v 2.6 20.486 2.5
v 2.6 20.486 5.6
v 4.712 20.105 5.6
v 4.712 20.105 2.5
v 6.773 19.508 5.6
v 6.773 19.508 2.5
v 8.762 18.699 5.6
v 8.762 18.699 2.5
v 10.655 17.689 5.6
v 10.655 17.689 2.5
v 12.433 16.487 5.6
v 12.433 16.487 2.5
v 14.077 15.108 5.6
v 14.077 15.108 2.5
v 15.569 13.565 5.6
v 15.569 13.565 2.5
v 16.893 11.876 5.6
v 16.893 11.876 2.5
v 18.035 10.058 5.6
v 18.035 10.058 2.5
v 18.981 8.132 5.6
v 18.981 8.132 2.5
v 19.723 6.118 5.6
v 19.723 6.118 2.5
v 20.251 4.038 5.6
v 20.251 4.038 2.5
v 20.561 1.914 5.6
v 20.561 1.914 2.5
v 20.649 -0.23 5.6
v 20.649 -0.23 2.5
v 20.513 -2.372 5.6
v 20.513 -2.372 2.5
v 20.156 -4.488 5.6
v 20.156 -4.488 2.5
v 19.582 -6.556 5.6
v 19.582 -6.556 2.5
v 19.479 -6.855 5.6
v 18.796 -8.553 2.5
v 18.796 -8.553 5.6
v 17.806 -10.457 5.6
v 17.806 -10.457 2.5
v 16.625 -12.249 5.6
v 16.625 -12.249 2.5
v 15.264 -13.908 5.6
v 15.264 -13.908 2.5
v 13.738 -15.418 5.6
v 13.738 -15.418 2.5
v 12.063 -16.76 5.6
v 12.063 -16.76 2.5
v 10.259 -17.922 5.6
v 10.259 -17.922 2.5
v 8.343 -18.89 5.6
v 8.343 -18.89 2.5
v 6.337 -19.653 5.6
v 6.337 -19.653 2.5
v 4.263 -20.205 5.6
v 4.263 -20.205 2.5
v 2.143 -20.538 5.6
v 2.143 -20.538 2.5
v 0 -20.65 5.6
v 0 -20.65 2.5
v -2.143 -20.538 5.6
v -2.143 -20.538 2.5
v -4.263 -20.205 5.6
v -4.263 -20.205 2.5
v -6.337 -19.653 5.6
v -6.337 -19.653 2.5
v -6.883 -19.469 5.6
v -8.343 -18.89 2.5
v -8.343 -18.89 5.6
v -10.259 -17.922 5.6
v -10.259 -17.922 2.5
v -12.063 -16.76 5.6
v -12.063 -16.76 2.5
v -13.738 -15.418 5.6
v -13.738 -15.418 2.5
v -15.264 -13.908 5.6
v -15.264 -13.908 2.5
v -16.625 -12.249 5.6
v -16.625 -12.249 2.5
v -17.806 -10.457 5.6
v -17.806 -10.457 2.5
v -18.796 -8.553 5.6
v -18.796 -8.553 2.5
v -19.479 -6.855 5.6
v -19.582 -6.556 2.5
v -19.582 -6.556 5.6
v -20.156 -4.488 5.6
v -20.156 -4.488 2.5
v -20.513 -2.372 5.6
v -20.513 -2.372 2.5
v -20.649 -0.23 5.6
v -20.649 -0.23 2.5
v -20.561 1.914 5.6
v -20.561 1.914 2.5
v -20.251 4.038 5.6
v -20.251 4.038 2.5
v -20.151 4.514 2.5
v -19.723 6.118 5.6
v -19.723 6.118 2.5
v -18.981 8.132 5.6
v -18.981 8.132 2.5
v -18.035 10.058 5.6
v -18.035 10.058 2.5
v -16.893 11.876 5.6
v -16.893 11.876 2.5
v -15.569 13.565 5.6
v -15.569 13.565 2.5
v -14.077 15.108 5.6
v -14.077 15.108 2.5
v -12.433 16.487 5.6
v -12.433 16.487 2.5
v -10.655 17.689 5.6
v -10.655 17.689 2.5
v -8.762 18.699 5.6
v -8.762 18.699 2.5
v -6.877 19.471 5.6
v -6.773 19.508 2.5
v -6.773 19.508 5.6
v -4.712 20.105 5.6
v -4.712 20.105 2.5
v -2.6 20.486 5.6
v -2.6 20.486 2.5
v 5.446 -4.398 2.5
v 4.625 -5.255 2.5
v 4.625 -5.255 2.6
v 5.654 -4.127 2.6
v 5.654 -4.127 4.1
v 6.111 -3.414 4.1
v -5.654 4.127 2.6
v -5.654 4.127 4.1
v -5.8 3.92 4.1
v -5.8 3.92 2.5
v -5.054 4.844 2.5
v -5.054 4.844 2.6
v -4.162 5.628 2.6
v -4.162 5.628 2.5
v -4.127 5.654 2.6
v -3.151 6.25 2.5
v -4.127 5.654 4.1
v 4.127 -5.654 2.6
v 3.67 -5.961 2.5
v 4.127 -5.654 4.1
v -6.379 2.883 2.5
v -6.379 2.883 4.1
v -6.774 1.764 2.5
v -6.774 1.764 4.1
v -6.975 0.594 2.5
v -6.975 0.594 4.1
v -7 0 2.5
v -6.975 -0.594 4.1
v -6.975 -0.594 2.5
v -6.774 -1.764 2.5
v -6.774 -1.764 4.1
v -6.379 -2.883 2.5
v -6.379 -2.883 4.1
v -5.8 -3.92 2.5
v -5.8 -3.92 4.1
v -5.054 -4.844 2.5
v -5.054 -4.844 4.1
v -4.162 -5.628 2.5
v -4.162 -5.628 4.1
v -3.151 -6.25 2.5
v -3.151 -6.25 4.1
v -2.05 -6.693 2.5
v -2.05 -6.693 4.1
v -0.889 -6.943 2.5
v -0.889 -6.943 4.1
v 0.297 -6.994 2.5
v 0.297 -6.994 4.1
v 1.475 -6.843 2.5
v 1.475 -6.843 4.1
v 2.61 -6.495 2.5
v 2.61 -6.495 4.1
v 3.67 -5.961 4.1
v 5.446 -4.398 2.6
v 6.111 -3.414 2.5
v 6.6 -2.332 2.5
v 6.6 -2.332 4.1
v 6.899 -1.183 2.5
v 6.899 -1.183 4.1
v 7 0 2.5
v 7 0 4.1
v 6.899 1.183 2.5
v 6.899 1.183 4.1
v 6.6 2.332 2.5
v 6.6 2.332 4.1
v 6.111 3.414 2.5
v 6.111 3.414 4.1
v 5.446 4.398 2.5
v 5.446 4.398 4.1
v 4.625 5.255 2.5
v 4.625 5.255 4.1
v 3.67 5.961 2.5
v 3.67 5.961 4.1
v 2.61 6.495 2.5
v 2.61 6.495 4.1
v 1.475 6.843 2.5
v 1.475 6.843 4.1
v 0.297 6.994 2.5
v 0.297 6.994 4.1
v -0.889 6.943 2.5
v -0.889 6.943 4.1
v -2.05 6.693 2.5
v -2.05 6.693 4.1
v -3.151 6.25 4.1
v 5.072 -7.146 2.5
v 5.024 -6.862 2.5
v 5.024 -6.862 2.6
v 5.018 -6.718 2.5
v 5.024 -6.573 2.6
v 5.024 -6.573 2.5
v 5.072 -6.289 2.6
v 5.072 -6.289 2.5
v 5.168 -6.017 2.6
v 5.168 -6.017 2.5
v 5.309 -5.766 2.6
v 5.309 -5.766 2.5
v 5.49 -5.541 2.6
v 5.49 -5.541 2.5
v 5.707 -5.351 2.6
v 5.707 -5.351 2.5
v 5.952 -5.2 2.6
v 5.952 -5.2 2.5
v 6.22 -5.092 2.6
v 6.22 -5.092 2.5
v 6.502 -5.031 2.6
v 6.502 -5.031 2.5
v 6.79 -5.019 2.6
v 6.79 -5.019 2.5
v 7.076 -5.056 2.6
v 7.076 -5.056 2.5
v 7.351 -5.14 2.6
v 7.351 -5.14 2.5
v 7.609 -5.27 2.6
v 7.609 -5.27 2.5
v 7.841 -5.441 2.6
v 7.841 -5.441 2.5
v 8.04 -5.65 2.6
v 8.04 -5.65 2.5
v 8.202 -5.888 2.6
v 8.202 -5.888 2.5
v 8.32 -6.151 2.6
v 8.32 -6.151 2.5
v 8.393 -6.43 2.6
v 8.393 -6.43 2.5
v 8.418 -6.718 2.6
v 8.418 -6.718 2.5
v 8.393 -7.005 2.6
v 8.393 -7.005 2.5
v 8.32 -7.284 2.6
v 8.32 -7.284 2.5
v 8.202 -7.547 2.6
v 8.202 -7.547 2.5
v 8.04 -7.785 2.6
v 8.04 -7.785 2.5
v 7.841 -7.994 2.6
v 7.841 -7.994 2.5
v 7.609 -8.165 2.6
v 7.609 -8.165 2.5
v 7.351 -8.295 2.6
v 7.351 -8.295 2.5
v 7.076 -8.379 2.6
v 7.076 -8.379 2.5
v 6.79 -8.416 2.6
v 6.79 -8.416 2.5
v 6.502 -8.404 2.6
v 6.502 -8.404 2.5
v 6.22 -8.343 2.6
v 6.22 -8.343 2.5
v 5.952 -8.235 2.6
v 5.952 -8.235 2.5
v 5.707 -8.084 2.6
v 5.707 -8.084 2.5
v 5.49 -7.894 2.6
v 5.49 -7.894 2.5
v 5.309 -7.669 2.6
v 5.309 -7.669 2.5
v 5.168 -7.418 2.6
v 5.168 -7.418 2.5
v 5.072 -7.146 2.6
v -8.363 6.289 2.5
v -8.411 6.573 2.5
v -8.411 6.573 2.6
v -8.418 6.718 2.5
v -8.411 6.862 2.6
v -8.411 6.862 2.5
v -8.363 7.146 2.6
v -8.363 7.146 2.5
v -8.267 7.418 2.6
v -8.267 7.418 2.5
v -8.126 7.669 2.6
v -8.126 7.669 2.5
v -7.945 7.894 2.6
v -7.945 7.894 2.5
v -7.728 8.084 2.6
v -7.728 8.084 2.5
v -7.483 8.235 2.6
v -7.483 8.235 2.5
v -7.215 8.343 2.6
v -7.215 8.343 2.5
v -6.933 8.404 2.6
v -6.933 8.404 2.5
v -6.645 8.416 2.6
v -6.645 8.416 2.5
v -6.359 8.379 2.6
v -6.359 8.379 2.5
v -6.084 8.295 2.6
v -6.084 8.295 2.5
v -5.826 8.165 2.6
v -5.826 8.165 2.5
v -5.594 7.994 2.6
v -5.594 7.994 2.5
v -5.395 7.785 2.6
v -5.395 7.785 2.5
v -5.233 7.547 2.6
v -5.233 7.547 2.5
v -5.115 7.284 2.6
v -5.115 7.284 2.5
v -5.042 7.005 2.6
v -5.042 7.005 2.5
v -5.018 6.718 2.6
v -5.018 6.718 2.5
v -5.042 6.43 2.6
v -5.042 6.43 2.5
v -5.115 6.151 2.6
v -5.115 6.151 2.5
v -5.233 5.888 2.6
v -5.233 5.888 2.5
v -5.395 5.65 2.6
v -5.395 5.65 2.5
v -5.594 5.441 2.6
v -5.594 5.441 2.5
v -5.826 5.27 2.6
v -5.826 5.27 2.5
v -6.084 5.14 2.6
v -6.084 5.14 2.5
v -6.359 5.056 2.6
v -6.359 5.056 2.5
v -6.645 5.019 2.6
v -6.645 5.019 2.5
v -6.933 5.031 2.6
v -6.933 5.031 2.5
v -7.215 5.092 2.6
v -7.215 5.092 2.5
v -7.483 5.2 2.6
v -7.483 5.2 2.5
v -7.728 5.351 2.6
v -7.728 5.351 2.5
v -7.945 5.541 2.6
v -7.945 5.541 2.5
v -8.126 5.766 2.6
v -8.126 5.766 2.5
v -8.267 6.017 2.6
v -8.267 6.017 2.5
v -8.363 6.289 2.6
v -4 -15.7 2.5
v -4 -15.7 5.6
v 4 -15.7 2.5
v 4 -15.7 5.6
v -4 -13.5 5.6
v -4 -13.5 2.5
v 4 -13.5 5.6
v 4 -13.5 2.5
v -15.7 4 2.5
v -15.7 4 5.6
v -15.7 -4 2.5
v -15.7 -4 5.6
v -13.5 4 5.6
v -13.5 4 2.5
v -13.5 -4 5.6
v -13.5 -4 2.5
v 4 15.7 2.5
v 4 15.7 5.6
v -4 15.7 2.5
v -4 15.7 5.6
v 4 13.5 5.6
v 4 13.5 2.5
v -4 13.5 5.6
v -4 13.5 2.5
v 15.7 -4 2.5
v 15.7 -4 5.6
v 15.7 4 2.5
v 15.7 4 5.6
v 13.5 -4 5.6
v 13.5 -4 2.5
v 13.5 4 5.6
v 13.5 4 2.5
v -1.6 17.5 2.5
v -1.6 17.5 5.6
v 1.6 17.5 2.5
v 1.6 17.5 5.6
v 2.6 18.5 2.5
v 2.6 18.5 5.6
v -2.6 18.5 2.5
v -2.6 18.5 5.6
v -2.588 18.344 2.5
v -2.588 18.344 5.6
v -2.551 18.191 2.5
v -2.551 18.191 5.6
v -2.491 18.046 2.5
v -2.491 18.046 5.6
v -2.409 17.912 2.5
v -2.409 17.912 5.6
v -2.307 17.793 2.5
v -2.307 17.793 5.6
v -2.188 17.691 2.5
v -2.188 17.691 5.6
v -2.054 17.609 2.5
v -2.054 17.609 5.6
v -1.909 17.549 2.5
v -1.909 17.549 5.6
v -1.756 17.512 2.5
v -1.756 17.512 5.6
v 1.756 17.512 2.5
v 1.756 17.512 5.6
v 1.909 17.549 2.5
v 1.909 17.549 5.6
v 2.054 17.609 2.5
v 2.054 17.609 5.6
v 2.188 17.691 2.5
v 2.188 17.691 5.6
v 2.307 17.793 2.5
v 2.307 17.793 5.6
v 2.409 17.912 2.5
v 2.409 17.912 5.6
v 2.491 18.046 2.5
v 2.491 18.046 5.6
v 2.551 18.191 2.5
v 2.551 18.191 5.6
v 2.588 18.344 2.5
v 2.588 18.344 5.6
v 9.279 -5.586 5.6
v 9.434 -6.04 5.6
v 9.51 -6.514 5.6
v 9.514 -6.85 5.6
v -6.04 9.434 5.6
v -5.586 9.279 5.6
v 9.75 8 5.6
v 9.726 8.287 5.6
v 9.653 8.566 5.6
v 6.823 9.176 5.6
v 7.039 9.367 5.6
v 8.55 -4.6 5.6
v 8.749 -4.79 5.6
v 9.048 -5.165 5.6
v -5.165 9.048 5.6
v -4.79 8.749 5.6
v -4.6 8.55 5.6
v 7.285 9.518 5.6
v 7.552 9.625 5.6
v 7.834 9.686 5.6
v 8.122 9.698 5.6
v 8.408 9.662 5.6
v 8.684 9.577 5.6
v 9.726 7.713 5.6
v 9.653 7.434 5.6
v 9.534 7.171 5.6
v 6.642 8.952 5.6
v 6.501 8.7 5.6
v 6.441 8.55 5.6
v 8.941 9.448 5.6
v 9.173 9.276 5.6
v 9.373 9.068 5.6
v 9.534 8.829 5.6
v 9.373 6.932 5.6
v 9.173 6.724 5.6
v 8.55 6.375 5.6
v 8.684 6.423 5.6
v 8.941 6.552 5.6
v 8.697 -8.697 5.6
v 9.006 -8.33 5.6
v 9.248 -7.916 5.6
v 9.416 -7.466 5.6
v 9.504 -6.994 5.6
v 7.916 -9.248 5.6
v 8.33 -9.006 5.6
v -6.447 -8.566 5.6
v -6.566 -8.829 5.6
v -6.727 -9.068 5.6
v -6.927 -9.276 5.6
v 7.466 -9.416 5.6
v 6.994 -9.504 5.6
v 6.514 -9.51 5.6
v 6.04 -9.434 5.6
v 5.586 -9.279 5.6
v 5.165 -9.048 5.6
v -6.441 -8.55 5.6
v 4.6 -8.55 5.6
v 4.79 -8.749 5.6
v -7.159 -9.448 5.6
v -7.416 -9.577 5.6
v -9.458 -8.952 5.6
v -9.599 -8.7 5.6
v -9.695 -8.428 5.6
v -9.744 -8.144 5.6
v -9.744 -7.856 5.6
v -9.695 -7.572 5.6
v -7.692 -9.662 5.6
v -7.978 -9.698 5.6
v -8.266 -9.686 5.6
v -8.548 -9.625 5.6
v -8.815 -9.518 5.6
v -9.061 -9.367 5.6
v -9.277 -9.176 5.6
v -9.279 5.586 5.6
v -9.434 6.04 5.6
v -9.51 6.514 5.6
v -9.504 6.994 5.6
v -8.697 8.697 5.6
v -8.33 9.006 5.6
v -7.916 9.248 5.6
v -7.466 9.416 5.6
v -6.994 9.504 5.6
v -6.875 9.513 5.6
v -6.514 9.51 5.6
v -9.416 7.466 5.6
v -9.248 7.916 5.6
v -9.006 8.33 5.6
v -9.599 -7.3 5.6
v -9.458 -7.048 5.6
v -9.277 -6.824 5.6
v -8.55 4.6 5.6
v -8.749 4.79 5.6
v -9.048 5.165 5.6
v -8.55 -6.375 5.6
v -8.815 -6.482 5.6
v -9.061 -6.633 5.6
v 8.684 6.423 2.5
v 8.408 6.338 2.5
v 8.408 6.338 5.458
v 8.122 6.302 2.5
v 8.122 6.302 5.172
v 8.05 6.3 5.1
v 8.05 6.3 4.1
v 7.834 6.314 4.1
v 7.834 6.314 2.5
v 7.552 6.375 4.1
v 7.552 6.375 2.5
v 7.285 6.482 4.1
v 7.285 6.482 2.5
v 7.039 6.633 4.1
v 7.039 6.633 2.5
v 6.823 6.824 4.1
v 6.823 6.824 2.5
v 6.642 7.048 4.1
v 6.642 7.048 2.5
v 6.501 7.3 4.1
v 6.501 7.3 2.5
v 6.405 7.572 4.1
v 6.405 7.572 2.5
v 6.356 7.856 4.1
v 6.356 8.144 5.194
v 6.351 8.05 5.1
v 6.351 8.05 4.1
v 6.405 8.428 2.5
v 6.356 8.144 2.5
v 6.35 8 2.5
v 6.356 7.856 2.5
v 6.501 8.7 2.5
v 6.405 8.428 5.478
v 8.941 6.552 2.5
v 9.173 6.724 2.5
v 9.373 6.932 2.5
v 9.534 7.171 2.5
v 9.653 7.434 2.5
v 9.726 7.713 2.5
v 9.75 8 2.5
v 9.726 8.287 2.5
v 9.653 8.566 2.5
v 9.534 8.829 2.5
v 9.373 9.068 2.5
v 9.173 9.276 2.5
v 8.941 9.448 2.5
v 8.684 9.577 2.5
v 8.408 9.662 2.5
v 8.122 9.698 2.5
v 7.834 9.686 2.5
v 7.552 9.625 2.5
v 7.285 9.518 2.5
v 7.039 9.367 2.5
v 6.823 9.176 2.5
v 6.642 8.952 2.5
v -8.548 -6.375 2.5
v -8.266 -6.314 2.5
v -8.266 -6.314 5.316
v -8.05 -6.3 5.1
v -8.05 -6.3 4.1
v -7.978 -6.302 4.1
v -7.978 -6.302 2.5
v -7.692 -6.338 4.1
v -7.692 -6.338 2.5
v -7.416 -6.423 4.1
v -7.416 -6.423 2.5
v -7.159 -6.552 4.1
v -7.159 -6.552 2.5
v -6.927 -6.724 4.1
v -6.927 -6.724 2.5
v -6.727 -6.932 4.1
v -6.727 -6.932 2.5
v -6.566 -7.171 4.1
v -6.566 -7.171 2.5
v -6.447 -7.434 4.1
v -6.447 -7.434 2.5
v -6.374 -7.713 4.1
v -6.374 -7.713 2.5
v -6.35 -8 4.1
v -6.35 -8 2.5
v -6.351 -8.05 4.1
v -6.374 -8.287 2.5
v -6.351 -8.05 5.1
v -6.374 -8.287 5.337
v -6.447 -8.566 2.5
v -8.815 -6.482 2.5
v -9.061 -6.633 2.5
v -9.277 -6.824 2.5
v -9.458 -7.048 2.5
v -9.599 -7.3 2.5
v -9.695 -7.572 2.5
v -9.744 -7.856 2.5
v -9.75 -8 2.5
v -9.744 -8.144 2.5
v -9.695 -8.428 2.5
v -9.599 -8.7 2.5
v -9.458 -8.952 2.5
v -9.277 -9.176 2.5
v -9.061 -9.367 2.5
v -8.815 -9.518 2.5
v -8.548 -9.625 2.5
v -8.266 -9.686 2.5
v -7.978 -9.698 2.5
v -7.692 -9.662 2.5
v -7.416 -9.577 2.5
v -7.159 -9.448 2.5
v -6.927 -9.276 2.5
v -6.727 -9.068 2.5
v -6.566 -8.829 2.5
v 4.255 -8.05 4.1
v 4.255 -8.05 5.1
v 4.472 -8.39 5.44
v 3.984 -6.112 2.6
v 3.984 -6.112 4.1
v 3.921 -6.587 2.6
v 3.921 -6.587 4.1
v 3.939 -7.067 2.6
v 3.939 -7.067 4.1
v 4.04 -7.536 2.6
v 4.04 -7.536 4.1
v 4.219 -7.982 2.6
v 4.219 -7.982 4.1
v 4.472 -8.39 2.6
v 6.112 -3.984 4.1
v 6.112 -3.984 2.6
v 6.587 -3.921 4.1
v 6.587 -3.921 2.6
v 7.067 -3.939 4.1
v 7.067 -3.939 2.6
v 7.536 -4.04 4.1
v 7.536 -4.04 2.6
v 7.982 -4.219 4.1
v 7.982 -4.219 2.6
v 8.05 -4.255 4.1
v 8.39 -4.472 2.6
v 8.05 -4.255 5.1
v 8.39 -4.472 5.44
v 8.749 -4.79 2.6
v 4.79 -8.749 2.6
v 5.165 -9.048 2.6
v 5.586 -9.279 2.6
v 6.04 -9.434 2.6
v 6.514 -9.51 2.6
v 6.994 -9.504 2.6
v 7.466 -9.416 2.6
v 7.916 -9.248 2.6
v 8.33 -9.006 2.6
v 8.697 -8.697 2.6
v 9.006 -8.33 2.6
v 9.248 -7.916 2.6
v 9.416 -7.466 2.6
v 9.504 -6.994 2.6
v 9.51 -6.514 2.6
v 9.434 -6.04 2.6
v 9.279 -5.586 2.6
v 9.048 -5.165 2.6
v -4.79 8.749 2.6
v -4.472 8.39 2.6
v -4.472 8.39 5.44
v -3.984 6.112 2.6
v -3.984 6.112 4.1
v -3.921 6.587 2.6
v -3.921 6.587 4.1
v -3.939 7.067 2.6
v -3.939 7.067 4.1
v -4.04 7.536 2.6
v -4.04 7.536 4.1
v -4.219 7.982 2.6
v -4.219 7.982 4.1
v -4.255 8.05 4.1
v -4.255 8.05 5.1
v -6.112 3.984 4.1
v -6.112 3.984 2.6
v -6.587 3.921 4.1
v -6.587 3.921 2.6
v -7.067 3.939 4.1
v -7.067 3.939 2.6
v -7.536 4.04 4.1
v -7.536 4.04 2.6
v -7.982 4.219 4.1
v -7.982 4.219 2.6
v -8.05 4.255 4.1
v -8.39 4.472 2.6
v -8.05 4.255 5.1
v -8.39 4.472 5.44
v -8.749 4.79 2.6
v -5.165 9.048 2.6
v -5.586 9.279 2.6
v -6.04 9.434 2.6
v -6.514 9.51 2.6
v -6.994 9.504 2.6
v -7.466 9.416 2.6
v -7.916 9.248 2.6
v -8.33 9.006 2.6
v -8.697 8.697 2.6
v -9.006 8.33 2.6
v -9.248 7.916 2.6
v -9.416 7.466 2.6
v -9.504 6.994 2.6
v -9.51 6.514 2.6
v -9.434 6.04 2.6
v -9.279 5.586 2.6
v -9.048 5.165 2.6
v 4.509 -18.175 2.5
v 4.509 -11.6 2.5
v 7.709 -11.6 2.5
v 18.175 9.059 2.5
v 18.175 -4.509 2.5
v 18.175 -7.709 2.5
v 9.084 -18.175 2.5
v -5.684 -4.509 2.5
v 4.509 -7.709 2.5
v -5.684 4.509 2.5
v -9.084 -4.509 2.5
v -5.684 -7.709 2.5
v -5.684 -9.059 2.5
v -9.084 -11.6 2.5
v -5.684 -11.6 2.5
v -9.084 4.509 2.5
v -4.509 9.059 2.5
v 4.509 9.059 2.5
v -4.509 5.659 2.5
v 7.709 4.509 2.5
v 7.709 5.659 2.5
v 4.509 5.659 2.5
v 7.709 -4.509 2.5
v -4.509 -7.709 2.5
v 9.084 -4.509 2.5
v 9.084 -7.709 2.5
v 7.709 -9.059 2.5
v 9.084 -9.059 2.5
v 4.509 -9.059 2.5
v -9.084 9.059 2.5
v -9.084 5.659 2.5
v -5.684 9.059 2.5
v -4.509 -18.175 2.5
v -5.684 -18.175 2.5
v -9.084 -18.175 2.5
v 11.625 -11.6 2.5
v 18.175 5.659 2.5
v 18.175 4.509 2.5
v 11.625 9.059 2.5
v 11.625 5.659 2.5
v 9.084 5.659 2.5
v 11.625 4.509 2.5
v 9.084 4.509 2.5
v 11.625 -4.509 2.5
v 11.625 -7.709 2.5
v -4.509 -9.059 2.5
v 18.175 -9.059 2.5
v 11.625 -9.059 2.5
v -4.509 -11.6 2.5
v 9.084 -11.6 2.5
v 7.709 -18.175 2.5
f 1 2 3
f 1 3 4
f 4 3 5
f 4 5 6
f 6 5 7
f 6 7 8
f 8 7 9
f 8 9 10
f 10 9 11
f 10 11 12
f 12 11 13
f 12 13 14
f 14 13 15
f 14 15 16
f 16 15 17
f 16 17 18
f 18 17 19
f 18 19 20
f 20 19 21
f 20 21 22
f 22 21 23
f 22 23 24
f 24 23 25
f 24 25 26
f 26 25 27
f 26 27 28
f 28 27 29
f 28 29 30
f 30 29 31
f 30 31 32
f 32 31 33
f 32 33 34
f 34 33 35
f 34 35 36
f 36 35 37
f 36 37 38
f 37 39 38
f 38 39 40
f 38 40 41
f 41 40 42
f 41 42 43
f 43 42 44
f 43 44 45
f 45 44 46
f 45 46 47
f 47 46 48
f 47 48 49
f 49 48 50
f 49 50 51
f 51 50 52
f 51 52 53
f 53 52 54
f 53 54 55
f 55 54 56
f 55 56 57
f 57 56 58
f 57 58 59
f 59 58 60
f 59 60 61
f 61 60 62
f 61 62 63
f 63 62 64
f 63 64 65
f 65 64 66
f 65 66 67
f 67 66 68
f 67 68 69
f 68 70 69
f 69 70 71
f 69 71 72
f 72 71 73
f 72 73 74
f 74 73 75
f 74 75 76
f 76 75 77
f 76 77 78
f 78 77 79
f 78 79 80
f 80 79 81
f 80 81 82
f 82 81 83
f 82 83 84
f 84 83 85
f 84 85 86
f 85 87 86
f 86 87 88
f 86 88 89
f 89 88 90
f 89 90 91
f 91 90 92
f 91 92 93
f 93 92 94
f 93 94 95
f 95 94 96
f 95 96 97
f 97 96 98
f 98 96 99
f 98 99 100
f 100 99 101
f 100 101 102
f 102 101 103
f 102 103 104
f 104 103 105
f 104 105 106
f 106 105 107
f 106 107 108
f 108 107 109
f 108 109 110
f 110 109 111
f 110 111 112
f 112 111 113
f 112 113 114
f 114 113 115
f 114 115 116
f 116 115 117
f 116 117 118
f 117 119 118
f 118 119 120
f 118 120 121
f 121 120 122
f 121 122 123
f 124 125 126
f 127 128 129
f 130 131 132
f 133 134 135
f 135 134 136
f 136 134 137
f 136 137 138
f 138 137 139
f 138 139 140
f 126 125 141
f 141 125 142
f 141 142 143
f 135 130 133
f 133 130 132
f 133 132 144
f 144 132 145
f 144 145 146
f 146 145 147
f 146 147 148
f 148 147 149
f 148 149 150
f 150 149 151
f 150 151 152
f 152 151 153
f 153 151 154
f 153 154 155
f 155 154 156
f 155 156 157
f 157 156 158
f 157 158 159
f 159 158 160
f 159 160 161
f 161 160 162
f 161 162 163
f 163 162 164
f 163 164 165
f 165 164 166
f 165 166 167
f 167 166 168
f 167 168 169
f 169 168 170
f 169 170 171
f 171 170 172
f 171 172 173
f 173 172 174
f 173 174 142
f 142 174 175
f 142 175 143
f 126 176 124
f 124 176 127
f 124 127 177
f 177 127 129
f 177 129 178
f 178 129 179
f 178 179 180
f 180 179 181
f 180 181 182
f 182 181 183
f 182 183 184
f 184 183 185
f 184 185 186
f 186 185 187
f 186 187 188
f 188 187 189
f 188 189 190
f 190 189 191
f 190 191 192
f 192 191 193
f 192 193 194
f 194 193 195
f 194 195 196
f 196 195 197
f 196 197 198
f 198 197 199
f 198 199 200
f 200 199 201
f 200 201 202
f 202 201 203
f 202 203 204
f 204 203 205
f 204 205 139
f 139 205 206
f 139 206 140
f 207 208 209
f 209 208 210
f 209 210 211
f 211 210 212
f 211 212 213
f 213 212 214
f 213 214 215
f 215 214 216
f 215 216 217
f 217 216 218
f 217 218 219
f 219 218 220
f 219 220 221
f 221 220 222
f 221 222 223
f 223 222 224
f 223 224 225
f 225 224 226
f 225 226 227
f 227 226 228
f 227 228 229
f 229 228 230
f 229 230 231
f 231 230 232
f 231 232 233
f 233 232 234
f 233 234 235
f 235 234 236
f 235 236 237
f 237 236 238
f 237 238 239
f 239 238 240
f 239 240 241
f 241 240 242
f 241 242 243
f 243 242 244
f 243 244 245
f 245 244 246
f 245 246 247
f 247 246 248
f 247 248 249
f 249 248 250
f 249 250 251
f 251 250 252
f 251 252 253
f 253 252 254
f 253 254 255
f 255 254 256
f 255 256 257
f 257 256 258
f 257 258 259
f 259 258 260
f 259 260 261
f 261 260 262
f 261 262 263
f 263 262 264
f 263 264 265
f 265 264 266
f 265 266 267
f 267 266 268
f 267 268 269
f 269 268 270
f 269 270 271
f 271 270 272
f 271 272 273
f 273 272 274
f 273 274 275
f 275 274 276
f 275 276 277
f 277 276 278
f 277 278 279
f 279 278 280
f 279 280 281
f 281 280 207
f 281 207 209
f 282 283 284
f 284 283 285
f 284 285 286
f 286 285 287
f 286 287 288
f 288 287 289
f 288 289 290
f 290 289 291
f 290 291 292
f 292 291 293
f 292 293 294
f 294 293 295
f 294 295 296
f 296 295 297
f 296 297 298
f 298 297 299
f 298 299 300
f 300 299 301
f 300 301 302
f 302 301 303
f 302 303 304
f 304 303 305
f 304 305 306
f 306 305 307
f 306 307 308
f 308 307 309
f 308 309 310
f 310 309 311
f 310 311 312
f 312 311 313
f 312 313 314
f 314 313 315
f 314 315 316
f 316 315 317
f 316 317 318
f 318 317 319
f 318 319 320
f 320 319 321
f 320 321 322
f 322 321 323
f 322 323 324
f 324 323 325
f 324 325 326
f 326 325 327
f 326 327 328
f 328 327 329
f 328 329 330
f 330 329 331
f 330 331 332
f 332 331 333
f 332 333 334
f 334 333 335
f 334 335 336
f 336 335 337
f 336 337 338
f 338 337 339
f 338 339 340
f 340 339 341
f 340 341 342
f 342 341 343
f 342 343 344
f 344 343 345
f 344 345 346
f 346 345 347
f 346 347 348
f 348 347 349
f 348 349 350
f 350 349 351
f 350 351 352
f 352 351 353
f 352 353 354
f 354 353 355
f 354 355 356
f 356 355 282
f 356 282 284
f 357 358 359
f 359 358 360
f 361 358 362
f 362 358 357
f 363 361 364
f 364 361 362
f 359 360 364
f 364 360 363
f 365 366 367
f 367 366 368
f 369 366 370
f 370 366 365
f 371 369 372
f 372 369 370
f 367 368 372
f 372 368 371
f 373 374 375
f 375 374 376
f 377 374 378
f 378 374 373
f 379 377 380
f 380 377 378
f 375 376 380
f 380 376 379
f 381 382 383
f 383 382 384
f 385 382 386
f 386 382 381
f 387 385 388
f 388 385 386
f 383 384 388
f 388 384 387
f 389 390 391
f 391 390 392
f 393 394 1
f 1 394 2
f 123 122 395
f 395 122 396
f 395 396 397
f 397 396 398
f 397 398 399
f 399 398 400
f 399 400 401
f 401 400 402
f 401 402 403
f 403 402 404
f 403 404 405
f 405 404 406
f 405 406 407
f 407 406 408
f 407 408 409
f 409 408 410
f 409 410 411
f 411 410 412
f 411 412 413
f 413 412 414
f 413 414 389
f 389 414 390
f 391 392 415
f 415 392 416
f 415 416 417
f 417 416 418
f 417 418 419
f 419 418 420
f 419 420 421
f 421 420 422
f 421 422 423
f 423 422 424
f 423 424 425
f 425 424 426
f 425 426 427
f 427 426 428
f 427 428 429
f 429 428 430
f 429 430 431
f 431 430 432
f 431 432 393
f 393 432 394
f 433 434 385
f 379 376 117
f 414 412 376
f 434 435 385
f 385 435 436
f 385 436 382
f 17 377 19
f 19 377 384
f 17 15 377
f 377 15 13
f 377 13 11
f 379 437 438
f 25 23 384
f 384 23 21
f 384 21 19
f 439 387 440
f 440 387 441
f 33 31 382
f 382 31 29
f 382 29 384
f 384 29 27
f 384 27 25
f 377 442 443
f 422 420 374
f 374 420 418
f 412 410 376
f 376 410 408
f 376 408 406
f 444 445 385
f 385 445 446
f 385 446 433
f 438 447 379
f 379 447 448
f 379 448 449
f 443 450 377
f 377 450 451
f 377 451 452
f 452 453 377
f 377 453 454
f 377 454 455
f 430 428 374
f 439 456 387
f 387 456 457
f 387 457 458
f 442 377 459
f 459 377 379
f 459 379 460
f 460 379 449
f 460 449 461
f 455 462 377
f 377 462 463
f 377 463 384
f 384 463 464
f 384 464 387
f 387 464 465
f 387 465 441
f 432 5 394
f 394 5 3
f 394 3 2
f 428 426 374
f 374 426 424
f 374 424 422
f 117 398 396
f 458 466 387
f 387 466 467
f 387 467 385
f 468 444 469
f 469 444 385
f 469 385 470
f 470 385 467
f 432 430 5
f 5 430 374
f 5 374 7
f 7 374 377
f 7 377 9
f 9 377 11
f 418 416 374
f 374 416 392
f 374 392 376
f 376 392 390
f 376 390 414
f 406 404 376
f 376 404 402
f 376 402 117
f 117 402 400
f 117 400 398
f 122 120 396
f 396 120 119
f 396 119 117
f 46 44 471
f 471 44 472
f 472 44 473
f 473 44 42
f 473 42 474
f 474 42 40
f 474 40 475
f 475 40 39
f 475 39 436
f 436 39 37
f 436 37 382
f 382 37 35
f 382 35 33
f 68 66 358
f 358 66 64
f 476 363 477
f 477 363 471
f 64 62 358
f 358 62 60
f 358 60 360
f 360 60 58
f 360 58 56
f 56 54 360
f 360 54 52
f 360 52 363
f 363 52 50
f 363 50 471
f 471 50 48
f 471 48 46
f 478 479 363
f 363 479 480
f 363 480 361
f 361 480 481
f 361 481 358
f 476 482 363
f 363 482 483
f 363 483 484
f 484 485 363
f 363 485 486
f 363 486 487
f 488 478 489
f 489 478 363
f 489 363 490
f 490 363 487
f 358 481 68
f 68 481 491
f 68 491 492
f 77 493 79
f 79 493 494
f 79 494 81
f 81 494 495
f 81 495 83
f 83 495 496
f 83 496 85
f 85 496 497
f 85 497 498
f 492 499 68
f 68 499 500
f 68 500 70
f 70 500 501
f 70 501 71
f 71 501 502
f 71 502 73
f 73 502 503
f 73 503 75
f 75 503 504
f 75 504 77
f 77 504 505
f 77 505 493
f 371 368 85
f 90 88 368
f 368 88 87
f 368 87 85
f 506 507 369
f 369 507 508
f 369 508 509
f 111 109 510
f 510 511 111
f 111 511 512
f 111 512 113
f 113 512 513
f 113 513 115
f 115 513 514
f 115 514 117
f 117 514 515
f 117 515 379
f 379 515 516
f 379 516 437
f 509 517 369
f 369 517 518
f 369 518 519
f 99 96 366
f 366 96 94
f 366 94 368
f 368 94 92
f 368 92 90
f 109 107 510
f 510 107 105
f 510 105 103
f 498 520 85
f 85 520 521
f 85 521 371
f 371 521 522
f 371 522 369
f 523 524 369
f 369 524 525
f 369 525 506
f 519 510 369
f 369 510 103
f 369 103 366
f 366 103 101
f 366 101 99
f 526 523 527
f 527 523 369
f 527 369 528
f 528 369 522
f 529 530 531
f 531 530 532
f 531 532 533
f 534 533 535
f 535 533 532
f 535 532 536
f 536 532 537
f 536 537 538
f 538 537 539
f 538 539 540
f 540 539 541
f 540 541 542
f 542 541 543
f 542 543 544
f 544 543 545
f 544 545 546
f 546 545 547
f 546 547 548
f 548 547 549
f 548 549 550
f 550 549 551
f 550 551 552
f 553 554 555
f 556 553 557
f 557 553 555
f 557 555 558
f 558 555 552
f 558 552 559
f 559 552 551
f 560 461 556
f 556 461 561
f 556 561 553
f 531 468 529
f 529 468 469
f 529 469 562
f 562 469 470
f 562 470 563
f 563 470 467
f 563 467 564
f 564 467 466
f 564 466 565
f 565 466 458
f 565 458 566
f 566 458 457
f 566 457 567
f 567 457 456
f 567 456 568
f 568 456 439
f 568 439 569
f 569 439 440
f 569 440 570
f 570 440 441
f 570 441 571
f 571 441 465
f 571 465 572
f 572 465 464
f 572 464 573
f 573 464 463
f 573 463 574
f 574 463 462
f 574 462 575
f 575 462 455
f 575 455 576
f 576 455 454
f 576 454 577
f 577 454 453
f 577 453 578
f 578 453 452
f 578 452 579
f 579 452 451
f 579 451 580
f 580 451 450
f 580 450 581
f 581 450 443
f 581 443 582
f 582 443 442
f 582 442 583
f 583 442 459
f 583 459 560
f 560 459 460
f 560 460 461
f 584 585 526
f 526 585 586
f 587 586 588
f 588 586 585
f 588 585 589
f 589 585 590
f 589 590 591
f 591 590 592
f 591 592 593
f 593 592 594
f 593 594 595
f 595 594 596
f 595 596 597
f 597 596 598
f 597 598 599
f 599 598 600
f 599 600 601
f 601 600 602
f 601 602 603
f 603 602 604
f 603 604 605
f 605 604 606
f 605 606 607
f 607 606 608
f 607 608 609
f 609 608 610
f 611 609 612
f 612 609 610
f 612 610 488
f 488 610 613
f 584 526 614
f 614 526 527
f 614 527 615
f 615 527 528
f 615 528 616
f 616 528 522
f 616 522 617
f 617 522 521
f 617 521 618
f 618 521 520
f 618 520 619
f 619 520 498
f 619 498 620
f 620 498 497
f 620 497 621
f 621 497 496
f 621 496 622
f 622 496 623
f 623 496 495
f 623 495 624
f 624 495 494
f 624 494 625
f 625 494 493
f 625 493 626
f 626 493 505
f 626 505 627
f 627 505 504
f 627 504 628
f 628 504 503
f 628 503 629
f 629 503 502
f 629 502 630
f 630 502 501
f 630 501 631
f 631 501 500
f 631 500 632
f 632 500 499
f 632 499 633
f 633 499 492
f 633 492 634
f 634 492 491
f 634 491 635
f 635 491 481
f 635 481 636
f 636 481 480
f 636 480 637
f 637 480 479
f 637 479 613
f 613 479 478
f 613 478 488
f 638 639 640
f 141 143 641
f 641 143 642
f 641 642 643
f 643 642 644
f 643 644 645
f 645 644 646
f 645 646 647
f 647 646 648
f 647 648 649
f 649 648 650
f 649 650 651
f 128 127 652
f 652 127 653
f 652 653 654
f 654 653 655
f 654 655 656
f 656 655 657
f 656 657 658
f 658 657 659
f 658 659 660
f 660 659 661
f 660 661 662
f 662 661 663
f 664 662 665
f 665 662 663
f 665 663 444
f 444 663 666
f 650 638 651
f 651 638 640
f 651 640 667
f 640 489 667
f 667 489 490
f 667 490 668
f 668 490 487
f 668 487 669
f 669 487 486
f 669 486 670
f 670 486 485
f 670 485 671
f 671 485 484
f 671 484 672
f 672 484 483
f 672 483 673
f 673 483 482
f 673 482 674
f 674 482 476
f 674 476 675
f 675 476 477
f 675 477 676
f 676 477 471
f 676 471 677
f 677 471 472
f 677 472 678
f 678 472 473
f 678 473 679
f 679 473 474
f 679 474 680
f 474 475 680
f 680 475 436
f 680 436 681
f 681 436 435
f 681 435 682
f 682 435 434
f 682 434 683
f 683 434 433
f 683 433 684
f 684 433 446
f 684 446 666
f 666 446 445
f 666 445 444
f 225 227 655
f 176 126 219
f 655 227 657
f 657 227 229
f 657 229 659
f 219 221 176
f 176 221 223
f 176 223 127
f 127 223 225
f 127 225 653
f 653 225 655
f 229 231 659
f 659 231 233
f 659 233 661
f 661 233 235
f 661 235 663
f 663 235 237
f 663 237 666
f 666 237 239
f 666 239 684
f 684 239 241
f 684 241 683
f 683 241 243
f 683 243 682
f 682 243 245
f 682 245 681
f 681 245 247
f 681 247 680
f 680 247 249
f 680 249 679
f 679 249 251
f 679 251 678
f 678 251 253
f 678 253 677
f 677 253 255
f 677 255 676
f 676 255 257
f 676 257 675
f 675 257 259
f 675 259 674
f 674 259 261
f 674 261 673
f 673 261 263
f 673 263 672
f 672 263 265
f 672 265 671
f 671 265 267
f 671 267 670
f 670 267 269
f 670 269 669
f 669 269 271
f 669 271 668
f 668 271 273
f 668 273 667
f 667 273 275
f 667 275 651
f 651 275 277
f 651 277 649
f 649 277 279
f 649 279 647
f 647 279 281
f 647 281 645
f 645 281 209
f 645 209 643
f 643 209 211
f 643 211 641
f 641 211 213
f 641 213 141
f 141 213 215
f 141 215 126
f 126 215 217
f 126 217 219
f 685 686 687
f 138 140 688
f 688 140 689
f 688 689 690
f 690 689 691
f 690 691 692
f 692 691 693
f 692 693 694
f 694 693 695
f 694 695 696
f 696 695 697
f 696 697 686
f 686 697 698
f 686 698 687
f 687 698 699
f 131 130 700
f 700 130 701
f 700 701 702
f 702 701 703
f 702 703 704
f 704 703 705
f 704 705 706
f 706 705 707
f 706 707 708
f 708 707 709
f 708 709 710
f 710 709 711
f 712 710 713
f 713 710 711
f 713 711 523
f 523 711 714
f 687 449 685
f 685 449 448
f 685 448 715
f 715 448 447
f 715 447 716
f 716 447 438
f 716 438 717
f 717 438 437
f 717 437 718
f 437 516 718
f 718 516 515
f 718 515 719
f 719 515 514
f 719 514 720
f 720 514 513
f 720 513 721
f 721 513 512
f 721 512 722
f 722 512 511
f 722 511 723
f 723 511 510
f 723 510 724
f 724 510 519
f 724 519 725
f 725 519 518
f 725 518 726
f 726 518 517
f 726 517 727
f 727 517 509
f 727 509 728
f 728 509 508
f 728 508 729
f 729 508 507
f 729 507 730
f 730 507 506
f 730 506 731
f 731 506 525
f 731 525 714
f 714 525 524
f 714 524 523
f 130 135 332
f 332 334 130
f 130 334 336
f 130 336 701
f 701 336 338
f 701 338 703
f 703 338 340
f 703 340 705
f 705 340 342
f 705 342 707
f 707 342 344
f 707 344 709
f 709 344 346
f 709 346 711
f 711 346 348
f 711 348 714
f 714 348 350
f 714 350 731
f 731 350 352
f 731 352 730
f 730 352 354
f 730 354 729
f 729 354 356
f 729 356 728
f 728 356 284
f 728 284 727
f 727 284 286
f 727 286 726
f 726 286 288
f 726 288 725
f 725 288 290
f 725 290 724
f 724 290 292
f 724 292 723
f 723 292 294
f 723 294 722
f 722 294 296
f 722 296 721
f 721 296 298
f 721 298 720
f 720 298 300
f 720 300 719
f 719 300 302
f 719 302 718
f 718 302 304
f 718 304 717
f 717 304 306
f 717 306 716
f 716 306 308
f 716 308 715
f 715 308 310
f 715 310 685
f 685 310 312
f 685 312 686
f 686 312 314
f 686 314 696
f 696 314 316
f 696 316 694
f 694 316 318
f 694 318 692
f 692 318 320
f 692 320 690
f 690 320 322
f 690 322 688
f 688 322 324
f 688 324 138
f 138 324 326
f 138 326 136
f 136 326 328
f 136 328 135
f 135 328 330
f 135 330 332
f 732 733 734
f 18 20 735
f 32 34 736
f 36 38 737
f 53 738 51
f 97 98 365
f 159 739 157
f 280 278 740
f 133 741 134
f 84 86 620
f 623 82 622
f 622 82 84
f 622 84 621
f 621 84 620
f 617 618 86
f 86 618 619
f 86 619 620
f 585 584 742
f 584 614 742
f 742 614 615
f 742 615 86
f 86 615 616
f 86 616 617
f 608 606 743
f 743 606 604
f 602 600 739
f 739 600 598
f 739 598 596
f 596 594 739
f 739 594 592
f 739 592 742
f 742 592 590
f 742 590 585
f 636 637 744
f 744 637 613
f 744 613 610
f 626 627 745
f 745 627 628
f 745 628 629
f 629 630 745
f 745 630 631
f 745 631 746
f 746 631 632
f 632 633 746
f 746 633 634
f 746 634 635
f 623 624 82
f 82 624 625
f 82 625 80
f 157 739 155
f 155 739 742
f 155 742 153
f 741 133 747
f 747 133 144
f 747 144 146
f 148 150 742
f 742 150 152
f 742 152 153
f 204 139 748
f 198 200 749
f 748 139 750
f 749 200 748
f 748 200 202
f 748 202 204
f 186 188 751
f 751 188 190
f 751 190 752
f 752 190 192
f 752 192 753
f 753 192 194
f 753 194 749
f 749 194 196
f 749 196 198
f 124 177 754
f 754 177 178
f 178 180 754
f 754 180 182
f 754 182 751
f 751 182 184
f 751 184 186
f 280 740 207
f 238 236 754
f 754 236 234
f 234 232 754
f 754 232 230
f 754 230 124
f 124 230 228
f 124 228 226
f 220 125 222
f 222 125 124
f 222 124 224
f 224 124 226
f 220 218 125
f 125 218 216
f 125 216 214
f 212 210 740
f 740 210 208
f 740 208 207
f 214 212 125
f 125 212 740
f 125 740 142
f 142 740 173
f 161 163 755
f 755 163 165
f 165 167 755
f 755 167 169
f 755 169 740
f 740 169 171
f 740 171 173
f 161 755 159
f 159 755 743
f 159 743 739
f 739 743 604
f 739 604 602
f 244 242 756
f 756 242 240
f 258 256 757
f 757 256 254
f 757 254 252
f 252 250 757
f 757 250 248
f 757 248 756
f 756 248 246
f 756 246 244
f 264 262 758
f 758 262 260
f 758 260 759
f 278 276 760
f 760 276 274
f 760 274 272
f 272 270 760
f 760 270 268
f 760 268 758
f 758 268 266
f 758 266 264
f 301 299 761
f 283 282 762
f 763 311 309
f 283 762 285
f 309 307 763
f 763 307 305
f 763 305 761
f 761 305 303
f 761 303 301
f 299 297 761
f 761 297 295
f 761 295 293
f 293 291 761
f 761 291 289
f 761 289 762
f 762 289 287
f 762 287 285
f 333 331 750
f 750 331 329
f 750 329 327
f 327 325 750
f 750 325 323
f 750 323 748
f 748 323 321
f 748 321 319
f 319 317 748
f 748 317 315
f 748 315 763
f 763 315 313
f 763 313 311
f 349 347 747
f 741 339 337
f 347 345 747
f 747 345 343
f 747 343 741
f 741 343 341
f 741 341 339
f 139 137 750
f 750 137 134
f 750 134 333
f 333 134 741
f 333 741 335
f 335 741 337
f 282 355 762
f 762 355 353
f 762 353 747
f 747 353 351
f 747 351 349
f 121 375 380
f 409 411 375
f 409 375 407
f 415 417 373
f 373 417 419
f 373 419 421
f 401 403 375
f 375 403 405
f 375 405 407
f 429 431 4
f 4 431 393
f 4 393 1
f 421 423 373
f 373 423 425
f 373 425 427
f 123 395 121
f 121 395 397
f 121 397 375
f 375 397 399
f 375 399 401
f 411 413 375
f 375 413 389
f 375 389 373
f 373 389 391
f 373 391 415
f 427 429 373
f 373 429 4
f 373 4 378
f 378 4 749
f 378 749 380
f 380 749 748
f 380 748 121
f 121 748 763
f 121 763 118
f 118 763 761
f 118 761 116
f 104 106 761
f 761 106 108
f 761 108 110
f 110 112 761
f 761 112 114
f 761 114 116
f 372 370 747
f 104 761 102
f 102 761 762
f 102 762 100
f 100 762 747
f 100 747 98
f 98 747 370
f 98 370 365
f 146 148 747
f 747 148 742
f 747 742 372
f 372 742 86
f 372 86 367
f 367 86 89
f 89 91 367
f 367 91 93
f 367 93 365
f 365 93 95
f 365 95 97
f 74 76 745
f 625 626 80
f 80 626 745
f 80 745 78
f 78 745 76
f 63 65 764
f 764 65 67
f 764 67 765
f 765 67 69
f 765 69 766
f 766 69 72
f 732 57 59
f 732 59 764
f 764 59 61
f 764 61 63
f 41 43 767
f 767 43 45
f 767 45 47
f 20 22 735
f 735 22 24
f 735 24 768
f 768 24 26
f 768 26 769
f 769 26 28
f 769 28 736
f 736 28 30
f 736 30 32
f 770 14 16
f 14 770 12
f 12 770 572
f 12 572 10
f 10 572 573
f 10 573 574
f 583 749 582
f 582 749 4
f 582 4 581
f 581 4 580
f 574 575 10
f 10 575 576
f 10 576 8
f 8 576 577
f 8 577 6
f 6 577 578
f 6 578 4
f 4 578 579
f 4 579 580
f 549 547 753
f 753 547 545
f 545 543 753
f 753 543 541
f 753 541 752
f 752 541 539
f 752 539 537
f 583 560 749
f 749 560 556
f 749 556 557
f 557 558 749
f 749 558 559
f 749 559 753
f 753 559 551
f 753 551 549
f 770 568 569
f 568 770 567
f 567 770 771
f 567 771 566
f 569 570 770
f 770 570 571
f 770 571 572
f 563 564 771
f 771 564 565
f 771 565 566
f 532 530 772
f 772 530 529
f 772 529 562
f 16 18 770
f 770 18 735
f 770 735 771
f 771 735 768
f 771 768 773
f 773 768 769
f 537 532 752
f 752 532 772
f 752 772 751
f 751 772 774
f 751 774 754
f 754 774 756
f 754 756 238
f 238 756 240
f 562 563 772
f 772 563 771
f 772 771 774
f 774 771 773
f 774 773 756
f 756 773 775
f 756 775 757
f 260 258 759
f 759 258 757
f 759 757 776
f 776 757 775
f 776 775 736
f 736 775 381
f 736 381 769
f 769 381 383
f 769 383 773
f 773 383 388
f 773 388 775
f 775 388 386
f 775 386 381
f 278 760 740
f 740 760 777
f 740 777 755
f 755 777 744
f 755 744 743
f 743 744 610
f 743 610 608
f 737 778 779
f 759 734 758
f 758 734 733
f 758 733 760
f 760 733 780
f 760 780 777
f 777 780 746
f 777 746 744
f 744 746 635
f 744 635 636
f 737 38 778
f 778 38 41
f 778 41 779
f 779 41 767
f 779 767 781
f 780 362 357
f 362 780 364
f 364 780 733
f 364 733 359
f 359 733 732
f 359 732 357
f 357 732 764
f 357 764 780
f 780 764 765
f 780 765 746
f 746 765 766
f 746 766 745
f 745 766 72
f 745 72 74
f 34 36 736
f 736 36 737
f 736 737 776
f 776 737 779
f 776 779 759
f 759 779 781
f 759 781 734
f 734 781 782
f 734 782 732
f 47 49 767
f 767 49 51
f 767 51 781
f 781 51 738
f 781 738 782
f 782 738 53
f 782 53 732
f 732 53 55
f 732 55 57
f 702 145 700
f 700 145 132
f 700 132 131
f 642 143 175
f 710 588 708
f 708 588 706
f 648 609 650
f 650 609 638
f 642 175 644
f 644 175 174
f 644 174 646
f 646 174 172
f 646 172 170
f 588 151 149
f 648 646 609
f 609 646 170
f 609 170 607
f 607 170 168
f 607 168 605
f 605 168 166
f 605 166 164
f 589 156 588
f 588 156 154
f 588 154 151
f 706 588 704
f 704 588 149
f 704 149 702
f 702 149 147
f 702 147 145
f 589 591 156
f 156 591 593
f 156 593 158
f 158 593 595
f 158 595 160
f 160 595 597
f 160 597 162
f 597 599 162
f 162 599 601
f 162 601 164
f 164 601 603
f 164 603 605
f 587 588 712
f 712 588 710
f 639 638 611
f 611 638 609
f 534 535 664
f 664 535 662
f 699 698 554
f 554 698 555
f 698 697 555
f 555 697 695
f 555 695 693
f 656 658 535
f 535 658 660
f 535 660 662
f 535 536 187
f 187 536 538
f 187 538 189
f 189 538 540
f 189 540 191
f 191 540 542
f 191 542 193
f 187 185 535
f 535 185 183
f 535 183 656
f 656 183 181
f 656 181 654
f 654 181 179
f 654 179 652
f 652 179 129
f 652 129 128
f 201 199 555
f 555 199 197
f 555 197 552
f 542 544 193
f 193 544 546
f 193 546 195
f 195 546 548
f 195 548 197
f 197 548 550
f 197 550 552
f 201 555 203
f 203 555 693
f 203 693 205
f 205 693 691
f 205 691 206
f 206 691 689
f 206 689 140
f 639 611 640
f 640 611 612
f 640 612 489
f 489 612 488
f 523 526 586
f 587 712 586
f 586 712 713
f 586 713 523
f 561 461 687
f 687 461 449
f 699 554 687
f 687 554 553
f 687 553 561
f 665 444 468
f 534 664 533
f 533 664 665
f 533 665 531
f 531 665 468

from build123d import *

# Parameters (mm, degrees)
SKETCH_1_R               = 17.4
EXTRUDE_1_DEPTH          = 5.6
SKETCH_2_R               = 1.7
CUT_EXTRUDE_1_DEPTH      = 26.23648153
SKETCH_3_R               = 7
CUT_EXTRUDE_2_DEPTH      = 26.23648153
SKETCH_4_R               = 2.8
CUT_EXTRUDE_3_DEPTH      = 3
SKETCH_5_R               = 1.7
CUT_EXTRUDE_4_DEPTH      = 26.23648153
CUT_EXTRUDE_5_DEPTH      = 2.5
SKETCH_7_W               = 16.1
SKETCH_7_H               = 16.1
CUT_EXTRUDE_6_DEPTH      = 1.5
CHAMFER_1_SIZE           = 0.5
SKETCH_9_W               = 2.2
SKETCH_9_H               = 8
SKETCH_9_W_2             = 8
SKETCH_9_H_2             = 2.2
CUT_EXTRUDE_7_DEPTH      = 26.281613873
BOSS_EXTRUDE1_DEPTH      = 5.6
BOSS_EXTRUDE1_DEPTH_BACK = 4
SKETCH1_R                = 20.65
SKETCH1_R_2              = 17.4
SKETCH3_R                = 23
SKETCH3_R_2              = 20.65
BOSS_EXTRUDE2_DEPTH      = 2.5
SKETCH4_R                = 18
CUT_EXTRUDE3_DEPTH       = 4
SKETCH5_W                = 1
SKETCH5_H                = 8
CUT_EXTRUDE4_DEPTH       = 10
CUT_EXTRUDE6_DEPTH       = 10
FILLET3_R                = 1
SKETCH9_R                = 23
CUT_EXTRUDE8_DEPTH       = 6.5


with BuildPart() as part:
    # 草图1 → 凸台-拉伸1 (new body)
    with BuildSketch(Plane.XY):
        Circle(SKETCH_1_R)
    extrude(amount=EXTRUDE_1_DEPTH)

    # 草图2 → 切除-拉伸1 (cut, through all)
    with BuildSketch(Plane.XY.offset(5.6)):
        with Locations((-6.717514421, 6.717514421)):
            Circle(SKETCH_2_R)
        with Locations((6.717514421, -6.717514421)):
            Circle(SKETCH_2_R)
    extrude(amount=-CUT_EXTRUDE_1_DEPTH, mode=Mode.SUBTRACT)

    # 草图3 → 切除-拉伸2 (cut, through all)
    with BuildSketch(Plane.XY.offset(5.6)):
        Circle(SKETCH_3_R)
    extrude(amount=-CUT_EXTRUDE_2_DEPTH, mode=Mode.SUBTRACT)

    # 草图4 → 切除-拉伸3 (cut)
    with BuildSketch(Plane.XY.offset(5.6)):
        with Locations((-6.717514421, 6.717514421)):
            Circle(SKETCH_4_R)
        with Locations((6.717514421, -6.717514421)):
            Circle(SKETCH_4_R)
    extrude(amount=-CUT_EXTRUDE_3_DEPTH, mode=Mode.SUBTRACT)

    # 草图5 → 切除-拉伸4 (cut, through all)
    with BuildSketch(Plane.XY.offset(5.6)):
        with Locations((8.05, 8)):
            Circle(SKETCH_5_R)
        with Locations((-8.05, -8)):
            Circle(SKETCH_5_R)
    extrude(amount=-CUT_EXTRUDE_4_DEPTH, mode=Mode.SUBTRACT)

    # 草图6 → 切除-拉伸5 (cut)
    with BuildSketch(Plane(origin=(0, 0, 0), x_dir=(-1, 0, 0), z_dir=(0, 0, -1))):
        Polygon((4.766838493, -8), (6.408419246, -10.84330127), (9.691580754, -10.84330127), (11.333161507, -8), (9.691580754, -5.15669873), (6.408419246, -5.15669873), align=None)
        Polygon((-4.766838493, 8), (-6.408419246, 10.84330127), (-9.691580754, 10.84330127), (-11.333161507, 8), (-9.691580754, 5.15669873), (-6.408419246, 5.15669873), align=None)
    extrude(amount=-CUT_EXTRUDE_5_DEPTH, mode=Mode.SUBTRACT)

    # 草图7 → 切除-拉伸6 (cut)
    with BuildSketch(Plane.XY.offset(5.6)):
        Rectangle(SKETCH_7_W, SKETCH_7_H)
    extrude(amount=-CUT_EXTRUDE_6_DEPTH, mode=Mode.SUBTRACT)

    # 倒角1
    chamfer_1_edges = [part.edges().sort_by_distance(p)[0] for p in [
        (8.05, 1.022551258, 5.6),
        (1.047918985, 8.05, 5.6),
        (-8.05, -1.022551258, 5.6),
        (-1.047918985, -8.05, 5.6),
    ]]
    chamfer(chamfer_1_edges, length=CHAMFER_1_SIZE)

    # 草图8 → 旋转1 (revolve)
    with BuildSketch(Plane(origin=(0, 0, 0), x_dir=(0, 0, -1), z_dir=(1, 0, 0)), mode=Mode.PRIVATE) as revolve_1_sk:
        Polygon((0, 17.4), (0, 17.2), (0.2, 17.4), align=None)
    revolve(revolve_1_sk.sketch.rotate(Axis((0, 0, 0), (0, 0, 1)), 90), axis=Axis((0, 0, 0), (0, 0, 1)))

    # 草图9 → 切除-拉伸7 (cut, through all)
    with BuildSketch(Plane.XY.offset(5.6)):
        with Locations((14.6, 0)):
            Rectangle(SKETCH_9_W, SKETCH_9_H)
        with Locations((0, 14.6)):
            Rectangle(SKETCH_9_W_2, SKETCH_9_H_2)
        with Locations((-14.6, 0)):
            Rectangle(SKETCH_9_W, SKETCH_9_H)
        with Locations((0, -14.6)):
            Rectangle(SKETCH_9_W_2, SKETCH_9_H_2)
    extrude(amount=-CUT_EXTRUDE_7_DEPTH, mode=Mode.SUBTRACT)

    # Sketch1 → Boss-Extrude1 (add, two sides: drawn at the far end of the back side and taken through both)
    with BuildSketch(Plane.XY.offset(-BOSS_EXTRUDE1_DEPTH_BACK)):
        Circle(SKETCH1_R)
        Circle(SKETCH1_R_2, mode=Mode.SUBTRACT)
    extrude(amount=BOSS_EXTRUDE1_DEPTH + BOSS_EXTRUDE1_DEPTH_BACK)

    # Sketch3 → Boss-Extrude2 (add)
    with BuildSketch(Plane(origin=(0, 0, -4), x_dir=(-1, 0, 0), z_dir=(0, 0, -1))):
        Circle(SKETCH3_R)
        with Locations(Location((0, 0, 0), (0, 0, 180))):
            Circle(SKETCH3_R_2, mode=Mode.SUBTRACT)
    extrude(amount=-BOSS_EXTRUDE2_DEPTH)

    # Sketch4 → Cut-Extrude3 (cut)
    with BuildSketch(Plane(origin=(0, 0, -4), x_dir=(-1, 0, 0), z_dir=(0, 0, -1))):
        Circle(SKETCH4_R)
    extrude(amount=-CUT_EXTRUDE3_DEPTH, mode=Mode.SUBTRACT)

    # Sketch5 → Cut-Extrude4 (cut)
    with BuildSketch(Plane(origin=(0, 0, -4), x_dir=(-1, 0, 0), z_dir=(0, 0, -1))):
        with Locations((22.5, 0)):
            Rectangle(SKETCH5_W, SKETCH5_H)
        with Locations((-22.5, 0)):
            Rectangle(SKETCH5_W, SKETCH5_H)
    extrude(amount=-CUT_EXTRUDE4_DEPTH, mode=Mode.SUBTRACT)

    # Sketch7 → Cut-Extrude6 (cut)
    with BuildSketch(Plane(origin=(0, 0, -4), x_dir=(-1, 0, 0), z_dir=(0, 0, -1))):
        with BuildLine():
            Line((0, 18), (0, 22.3))
            Line((0, 22.3), (-2.6, 22.3))
            Line((-2.6, 22.3), (-2.6, 17.811232411))
            ThreePointArc((-2.6, 17.811232411), (-1.303421766, 17.952746077), (0, 18))
        make_face()
        with BuildLine():
            Line((0, 17.5), (0, 18))
            ThreePointArc((0, 18), (-1.303421766, 17.952746077), (-2.6, 17.811232411))
            Line((-2.6, 17.811232411), (-2.6, 17.5))
            Line((-2.6, 17.5), (0, 17.5))
        make_face()
        with BuildLine():
            Line((2.6, 22.3), (0, 22.3))
            Line((0, 22.3), (0, 18))
            ThreePointArc((0, 18), (1.303421766, 17.952746077), (2.6, 17.811232411))
            Line((2.6, 17.811232411), (2.6, 22.3))
        make_face()
        with BuildLine():
            ThreePointArc((2.6, 17.811232411), (1.303421766, 17.952746077), (0, 18))
            Line((0, 18), (0, 17.5))
            Line((0, 17.5), (2.6, 17.5))
            Line((2.6, 17.5), (2.6, 17.811232411))
        make_face()
    extrude(amount=-CUT_EXTRUDE6_DEPTH, mode=Mode.SUBTRACT)

    # Fillet3
    # the kernel refuses this fillet: 1 mm, written as the material it adds along each edge
    with BuildSketch(Plane(origin=(2.6, 22.3, -4), x_dir=(-1, 0, 0), z_dir=(0, 0, 1))) as fillet3_piece_1:
        with BuildLine():
            CenterArc((FILLET3_R, FILLET3_R), FILLET3_R, 180, 90)
            Line((0, FILLET3_R), (-FILLET3_R * 0.02, FILLET3_R))
            Line((-FILLET3_R * 0.02, FILLET3_R), (-FILLET3_R * 0.02, -FILLET3_R * 0.02))
            Line((-FILLET3_R * 0.02, -FILLET3_R * 0.02), (FILLET3_R, -FILLET3_R * 0.02))
            Line((FILLET3_R, -FILLET3_R * 0.02), (FILLET3_R, 0))
        make_face()
    extrude(amount=2.5)
    with BuildSketch(Plane(origin=(-2.6, 22.3, -4), x_dir=(1, 0, 0), z_dir=(0, 0, 1))) as fillet3_piece_2:
        with BuildLine():
            CenterArc((FILLET3_R, -FILLET3_R), FILLET3_R, 90, 90)
            Line((0, -FILLET3_R), (-FILLET3_R * 0.02, -FILLET3_R))
            Line((-FILLET3_R * 0.02, -FILLET3_R), (-FILLET3_R * 0.02, FILLET3_R * 0.02))
            Line((-FILLET3_R * 0.02, FILLET3_R * 0.02), (FILLET3_R, FILLET3_R * 0.02))
            Line((FILLET3_R, FILLET3_R * 0.02), (FILLET3_R, 0))
        make_face()
    extrude(amount=2.5)
    with BuildSketch(Plane(origin=(-2.6, 17.5, -6), x_dir=(0, 1, 0), z_dir=(0, 0, 1))) as fillet3_piece_3_section:
        with BuildLine():
            CenterArc((FILLET3_R, -FILLET3_R), FILLET3_R, 90, 90)
            Line((0, -FILLET3_R), (-FILLET3_R * 0.02, -FILLET3_R))
            Line((-FILLET3_R * 0.02, -FILLET3_R), (-FILLET3_R * 0.02, FILLET3_R * 0.02))
            Line((-FILLET3_R * 0.02, FILLET3_R * 0.02), (FILLET3_R, FILLET3_R * 0.02))
            Line((FILLET3_R, FILLET3_R * 0.02), (FILLET3_R, 0))
        make_face()
    fillet3_piece_3 = extrude(amount=11.6, mode=Mode.PRIVATE)
    fillet3_piece_3 = split(fillet3_piece_3, bisect_by=Plane(origin=(-2.544482942, 18.024809788, 0), z_dir=(0, 0, -1)), keep=Keep.TOP, mode=Mode.PRIVATE)
    fillet3_piece_3 = fillet3_piece_3 - Plane(origin=(0, 0, -2), x_dir=(-1, 0, 0), z_dir=(0, 0, -1)) * Cylinder(18, 28, mode=Mode.PRIVATE)
    fillet3_piece_3 = split(fillet3_piece_3, bisect_by=Plane(origin=(-2.544482942, 18.024809788, -4), z_dir=(0, 0, 1)), keep=Keep.TOP, mode=Mode.PRIVATE)
    add(fillet3_piece_3)
    with BuildSketch(Plane(origin=(-2.6, 17.5, 0), x_dir=(0, 1, 0), z_dir=(0, 0, 1))) as fillet3_piece_4_section:
        with BuildLine():
            CenterArc((FILLET3_R, -FILLET3_R), FILLET3_R, 90, 90)
            Line((0, -FILLET3_R), (-FILLET3_R * 0.02, -FILLET3_R))
            Line((-FILLET3_R * 0.02, -FILLET3_R), (-FILLET3_R * 0.02, FILLET3_R * 0.02))
            Line((-FILLET3_R * 0.02, FILLET3_R * 0.02), (FILLET3_R, FILLET3_R * 0.02))
            Line((FILLET3_R, FILLET3_R * 0.02), (FILLET3_R, 0))
        make_face()
    fillet3_piece_4 = extrude(amount=5.6, mode=Mode.PRIVATE)
    fillet3_piece_4 = fillet3_piece_4 - Plane(origin=(0, 0, 2.8), x_dir=(-1, 0, 0), z_dir=(0, 0, -1)) * Cylinder(18, 16, mode=Mode.PRIVATE)
    add(fillet3_piece_4)
    with BuildSketch(Plane(origin=(-2.6, 17.5, 0), x_dir=(0, 1, 0), z_dir=(0, 0, 1))) as fillet3_piece_5_section:
        with BuildLine():
            CenterArc((FILLET3_R, -FILLET3_R), FILLET3_R, 90, 90)
            Line((0, -FILLET3_R), (-FILLET3_R * 0.02, -FILLET3_R))
            Line((-FILLET3_R * 0.02, -FILLET3_R), (-FILLET3_R * 0.02, FILLET3_R * 0.02))
            Line((-FILLET3_R * 0.02, FILLET3_R * 0.02), (FILLET3_R, FILLET3_R * 0.02))
            Line((FILLET3_R, FILLET3_R * 0.02), (FILLET3_R, 0))
        make_face()
    fillet3_piece_5 = extrude(amount=5.6, mode=Mode.PRIVATE)
    fillet3_piece_5 = fillet3_piece_5 & Plane(origin=(0, 0, 2.8), x_dir=(-1, 0, 0), z_dir=(0, 0, -1)) * Cylinder(18, 16, mode=Mode.PRIVATE)
    add(fillet3_piece_5)
    with BuildSketch(Plane(origin=(2.6, 17.5, -6), x_dir=(-1, 0, 0), z_dir=(0, 0, 1))) as fillet3_piece_6_section:
        with BuildLine():
            CenterArc((FILLET3_R, -FILLET3_R), FILLET3_R, 90, 90)
            Line((0, -FILLET3_R), (-FILLET3_R * 0.02, -FILLET3_R))
            Line((-FILLET3_R * 0.02, -FILLET3_R), (-FILLET3_R * 0.02, FILLET3_R * 0.02))
            Line((-FILLET3_R * 0.02, FILLET3_R * 0.02), (FILLET3_R, FILLET3_R * 0.02))
            Line((FILLET3_R, FILLET3_R * 0.02), (FILLET3_R, 0))
        make_face()
    fillet3_piece_6 = extrude(amount=11.6, mode=Mode.PRIVATE)
    fillet3_piece_6 = split(fillet3_piece_6, bisect_by=Plane(origin=(2.544482942, 18.024809788, 0), z_dir=(0, 0, -1)), keep=Keep.TOP, mode=Mode.PRIVATE)
    fillet3_piece_6 = fillet3_piece_6 - Plane(origin=(0, 0, -2), x_dir=(-1, 0, 0), z_dir=(0, 0, -1)) * Cylinder(18, 28, mode=Mode.PRIVATE)
    fillet3_piece_6 = split(fillet3_piece_6, bisect_by=Plane(origin=(2.544482942, 18.024809788, -4), z_dir=(0, 0, 1)), keep=Keep.TOP, mode=Mode.PRIVATE)
    add(fillet3_piece_6)
    with BuildSketch(Plane(origin=(2.6, 17.5, 0), x_dir=(-1, 0, 0), z_dir=(0, 0, 1))) as fillet3_piece_7_section:
        with BuildLine():
            CenterArc((FILLET3_R, -FILLET3_R), FILLET3_R, 90, 90)
            Line((0, -FILLET3_R), (-FILLET3_R * 0.02, -FILLET3_R))
            Line((-FILLET3_R * 0.02, -FILLET3_R), (-FILLET3_R * 0.02, FILLET3_R * 0.02))
            Line((-FILLET3_R * 0.02, FILLET3_R * 0.02), (FILLET3_R, FILLET3_R * 0.02))
            Line((FILLET3_R, FILLET3_R * 0.02), (FILLET3_R, 0))
        make_face()
    fillet3_piece_7 = extrude(amount=5.6, mode=Mode.PRIVATE)
    fillet3_piece_7 = fillet3_piece_7 & Plane(origin=(0, 0, 2.8), x_dir=(-1, 0, 0), z_dir=(0, 0, -1)) * Cylinder(18, 16, mode=Mode.PRIVATE)
    add(fillet3_piece_7)
    with BuildSketch(Plane(origin=(2.6, 17.5, 0), x_dir=(-1, 0, 0), z_dir=(0, 0, 1))) as fillet3_piece_8_section:
        with BuildLine():
            CenterArc((FILLET3_R, -FILLET3_R), FILLET3_R, 90, 90)
            Line((0, -FILLET3_R), (-FILLET3_R * 0.02, -FILLET3_R))
            Line((-FILLET3_R * 0.02, -FILLET3_R), (-FILLET3_R * 0.02, FILLET3_R * 0.02))
            Line((-FILLET3_R * 0.02, FILLET3_R * 0.02), (FILLET3_R, FILLET3_R * 0.02))
            Line((FILLET3_R, FILLET3_R * 0.02), (FILLET3_R, 0))
        make_face()
    fillet3_piece_8 = extrude(amount=5.6, mode=Mode.PRIVATE)
    fillet3_piece_8 = fillet3_piece_8 - Plane(origin=(0, 0, 2.8), x_dir=(-1, 0, 0), z_dir=(0, 0, -1)) * Cylinder(18, 16, mode=Mode.PRIVATE)
    add(fillet3_piece_8)

    # Sketch9 → Cut-Extrude8 (cut)
    with BuildSketch(Plane(origin=(0, 0, -4), x_dir=(-1, 0, 0), z_dir=(0, 0, -1))):
        Circle(SKETCH9_R)
    extrude(amount=-CUT_EXTRUDE8_DEPTH, mode=Mode.SUBTRACT)


solid = part.part
